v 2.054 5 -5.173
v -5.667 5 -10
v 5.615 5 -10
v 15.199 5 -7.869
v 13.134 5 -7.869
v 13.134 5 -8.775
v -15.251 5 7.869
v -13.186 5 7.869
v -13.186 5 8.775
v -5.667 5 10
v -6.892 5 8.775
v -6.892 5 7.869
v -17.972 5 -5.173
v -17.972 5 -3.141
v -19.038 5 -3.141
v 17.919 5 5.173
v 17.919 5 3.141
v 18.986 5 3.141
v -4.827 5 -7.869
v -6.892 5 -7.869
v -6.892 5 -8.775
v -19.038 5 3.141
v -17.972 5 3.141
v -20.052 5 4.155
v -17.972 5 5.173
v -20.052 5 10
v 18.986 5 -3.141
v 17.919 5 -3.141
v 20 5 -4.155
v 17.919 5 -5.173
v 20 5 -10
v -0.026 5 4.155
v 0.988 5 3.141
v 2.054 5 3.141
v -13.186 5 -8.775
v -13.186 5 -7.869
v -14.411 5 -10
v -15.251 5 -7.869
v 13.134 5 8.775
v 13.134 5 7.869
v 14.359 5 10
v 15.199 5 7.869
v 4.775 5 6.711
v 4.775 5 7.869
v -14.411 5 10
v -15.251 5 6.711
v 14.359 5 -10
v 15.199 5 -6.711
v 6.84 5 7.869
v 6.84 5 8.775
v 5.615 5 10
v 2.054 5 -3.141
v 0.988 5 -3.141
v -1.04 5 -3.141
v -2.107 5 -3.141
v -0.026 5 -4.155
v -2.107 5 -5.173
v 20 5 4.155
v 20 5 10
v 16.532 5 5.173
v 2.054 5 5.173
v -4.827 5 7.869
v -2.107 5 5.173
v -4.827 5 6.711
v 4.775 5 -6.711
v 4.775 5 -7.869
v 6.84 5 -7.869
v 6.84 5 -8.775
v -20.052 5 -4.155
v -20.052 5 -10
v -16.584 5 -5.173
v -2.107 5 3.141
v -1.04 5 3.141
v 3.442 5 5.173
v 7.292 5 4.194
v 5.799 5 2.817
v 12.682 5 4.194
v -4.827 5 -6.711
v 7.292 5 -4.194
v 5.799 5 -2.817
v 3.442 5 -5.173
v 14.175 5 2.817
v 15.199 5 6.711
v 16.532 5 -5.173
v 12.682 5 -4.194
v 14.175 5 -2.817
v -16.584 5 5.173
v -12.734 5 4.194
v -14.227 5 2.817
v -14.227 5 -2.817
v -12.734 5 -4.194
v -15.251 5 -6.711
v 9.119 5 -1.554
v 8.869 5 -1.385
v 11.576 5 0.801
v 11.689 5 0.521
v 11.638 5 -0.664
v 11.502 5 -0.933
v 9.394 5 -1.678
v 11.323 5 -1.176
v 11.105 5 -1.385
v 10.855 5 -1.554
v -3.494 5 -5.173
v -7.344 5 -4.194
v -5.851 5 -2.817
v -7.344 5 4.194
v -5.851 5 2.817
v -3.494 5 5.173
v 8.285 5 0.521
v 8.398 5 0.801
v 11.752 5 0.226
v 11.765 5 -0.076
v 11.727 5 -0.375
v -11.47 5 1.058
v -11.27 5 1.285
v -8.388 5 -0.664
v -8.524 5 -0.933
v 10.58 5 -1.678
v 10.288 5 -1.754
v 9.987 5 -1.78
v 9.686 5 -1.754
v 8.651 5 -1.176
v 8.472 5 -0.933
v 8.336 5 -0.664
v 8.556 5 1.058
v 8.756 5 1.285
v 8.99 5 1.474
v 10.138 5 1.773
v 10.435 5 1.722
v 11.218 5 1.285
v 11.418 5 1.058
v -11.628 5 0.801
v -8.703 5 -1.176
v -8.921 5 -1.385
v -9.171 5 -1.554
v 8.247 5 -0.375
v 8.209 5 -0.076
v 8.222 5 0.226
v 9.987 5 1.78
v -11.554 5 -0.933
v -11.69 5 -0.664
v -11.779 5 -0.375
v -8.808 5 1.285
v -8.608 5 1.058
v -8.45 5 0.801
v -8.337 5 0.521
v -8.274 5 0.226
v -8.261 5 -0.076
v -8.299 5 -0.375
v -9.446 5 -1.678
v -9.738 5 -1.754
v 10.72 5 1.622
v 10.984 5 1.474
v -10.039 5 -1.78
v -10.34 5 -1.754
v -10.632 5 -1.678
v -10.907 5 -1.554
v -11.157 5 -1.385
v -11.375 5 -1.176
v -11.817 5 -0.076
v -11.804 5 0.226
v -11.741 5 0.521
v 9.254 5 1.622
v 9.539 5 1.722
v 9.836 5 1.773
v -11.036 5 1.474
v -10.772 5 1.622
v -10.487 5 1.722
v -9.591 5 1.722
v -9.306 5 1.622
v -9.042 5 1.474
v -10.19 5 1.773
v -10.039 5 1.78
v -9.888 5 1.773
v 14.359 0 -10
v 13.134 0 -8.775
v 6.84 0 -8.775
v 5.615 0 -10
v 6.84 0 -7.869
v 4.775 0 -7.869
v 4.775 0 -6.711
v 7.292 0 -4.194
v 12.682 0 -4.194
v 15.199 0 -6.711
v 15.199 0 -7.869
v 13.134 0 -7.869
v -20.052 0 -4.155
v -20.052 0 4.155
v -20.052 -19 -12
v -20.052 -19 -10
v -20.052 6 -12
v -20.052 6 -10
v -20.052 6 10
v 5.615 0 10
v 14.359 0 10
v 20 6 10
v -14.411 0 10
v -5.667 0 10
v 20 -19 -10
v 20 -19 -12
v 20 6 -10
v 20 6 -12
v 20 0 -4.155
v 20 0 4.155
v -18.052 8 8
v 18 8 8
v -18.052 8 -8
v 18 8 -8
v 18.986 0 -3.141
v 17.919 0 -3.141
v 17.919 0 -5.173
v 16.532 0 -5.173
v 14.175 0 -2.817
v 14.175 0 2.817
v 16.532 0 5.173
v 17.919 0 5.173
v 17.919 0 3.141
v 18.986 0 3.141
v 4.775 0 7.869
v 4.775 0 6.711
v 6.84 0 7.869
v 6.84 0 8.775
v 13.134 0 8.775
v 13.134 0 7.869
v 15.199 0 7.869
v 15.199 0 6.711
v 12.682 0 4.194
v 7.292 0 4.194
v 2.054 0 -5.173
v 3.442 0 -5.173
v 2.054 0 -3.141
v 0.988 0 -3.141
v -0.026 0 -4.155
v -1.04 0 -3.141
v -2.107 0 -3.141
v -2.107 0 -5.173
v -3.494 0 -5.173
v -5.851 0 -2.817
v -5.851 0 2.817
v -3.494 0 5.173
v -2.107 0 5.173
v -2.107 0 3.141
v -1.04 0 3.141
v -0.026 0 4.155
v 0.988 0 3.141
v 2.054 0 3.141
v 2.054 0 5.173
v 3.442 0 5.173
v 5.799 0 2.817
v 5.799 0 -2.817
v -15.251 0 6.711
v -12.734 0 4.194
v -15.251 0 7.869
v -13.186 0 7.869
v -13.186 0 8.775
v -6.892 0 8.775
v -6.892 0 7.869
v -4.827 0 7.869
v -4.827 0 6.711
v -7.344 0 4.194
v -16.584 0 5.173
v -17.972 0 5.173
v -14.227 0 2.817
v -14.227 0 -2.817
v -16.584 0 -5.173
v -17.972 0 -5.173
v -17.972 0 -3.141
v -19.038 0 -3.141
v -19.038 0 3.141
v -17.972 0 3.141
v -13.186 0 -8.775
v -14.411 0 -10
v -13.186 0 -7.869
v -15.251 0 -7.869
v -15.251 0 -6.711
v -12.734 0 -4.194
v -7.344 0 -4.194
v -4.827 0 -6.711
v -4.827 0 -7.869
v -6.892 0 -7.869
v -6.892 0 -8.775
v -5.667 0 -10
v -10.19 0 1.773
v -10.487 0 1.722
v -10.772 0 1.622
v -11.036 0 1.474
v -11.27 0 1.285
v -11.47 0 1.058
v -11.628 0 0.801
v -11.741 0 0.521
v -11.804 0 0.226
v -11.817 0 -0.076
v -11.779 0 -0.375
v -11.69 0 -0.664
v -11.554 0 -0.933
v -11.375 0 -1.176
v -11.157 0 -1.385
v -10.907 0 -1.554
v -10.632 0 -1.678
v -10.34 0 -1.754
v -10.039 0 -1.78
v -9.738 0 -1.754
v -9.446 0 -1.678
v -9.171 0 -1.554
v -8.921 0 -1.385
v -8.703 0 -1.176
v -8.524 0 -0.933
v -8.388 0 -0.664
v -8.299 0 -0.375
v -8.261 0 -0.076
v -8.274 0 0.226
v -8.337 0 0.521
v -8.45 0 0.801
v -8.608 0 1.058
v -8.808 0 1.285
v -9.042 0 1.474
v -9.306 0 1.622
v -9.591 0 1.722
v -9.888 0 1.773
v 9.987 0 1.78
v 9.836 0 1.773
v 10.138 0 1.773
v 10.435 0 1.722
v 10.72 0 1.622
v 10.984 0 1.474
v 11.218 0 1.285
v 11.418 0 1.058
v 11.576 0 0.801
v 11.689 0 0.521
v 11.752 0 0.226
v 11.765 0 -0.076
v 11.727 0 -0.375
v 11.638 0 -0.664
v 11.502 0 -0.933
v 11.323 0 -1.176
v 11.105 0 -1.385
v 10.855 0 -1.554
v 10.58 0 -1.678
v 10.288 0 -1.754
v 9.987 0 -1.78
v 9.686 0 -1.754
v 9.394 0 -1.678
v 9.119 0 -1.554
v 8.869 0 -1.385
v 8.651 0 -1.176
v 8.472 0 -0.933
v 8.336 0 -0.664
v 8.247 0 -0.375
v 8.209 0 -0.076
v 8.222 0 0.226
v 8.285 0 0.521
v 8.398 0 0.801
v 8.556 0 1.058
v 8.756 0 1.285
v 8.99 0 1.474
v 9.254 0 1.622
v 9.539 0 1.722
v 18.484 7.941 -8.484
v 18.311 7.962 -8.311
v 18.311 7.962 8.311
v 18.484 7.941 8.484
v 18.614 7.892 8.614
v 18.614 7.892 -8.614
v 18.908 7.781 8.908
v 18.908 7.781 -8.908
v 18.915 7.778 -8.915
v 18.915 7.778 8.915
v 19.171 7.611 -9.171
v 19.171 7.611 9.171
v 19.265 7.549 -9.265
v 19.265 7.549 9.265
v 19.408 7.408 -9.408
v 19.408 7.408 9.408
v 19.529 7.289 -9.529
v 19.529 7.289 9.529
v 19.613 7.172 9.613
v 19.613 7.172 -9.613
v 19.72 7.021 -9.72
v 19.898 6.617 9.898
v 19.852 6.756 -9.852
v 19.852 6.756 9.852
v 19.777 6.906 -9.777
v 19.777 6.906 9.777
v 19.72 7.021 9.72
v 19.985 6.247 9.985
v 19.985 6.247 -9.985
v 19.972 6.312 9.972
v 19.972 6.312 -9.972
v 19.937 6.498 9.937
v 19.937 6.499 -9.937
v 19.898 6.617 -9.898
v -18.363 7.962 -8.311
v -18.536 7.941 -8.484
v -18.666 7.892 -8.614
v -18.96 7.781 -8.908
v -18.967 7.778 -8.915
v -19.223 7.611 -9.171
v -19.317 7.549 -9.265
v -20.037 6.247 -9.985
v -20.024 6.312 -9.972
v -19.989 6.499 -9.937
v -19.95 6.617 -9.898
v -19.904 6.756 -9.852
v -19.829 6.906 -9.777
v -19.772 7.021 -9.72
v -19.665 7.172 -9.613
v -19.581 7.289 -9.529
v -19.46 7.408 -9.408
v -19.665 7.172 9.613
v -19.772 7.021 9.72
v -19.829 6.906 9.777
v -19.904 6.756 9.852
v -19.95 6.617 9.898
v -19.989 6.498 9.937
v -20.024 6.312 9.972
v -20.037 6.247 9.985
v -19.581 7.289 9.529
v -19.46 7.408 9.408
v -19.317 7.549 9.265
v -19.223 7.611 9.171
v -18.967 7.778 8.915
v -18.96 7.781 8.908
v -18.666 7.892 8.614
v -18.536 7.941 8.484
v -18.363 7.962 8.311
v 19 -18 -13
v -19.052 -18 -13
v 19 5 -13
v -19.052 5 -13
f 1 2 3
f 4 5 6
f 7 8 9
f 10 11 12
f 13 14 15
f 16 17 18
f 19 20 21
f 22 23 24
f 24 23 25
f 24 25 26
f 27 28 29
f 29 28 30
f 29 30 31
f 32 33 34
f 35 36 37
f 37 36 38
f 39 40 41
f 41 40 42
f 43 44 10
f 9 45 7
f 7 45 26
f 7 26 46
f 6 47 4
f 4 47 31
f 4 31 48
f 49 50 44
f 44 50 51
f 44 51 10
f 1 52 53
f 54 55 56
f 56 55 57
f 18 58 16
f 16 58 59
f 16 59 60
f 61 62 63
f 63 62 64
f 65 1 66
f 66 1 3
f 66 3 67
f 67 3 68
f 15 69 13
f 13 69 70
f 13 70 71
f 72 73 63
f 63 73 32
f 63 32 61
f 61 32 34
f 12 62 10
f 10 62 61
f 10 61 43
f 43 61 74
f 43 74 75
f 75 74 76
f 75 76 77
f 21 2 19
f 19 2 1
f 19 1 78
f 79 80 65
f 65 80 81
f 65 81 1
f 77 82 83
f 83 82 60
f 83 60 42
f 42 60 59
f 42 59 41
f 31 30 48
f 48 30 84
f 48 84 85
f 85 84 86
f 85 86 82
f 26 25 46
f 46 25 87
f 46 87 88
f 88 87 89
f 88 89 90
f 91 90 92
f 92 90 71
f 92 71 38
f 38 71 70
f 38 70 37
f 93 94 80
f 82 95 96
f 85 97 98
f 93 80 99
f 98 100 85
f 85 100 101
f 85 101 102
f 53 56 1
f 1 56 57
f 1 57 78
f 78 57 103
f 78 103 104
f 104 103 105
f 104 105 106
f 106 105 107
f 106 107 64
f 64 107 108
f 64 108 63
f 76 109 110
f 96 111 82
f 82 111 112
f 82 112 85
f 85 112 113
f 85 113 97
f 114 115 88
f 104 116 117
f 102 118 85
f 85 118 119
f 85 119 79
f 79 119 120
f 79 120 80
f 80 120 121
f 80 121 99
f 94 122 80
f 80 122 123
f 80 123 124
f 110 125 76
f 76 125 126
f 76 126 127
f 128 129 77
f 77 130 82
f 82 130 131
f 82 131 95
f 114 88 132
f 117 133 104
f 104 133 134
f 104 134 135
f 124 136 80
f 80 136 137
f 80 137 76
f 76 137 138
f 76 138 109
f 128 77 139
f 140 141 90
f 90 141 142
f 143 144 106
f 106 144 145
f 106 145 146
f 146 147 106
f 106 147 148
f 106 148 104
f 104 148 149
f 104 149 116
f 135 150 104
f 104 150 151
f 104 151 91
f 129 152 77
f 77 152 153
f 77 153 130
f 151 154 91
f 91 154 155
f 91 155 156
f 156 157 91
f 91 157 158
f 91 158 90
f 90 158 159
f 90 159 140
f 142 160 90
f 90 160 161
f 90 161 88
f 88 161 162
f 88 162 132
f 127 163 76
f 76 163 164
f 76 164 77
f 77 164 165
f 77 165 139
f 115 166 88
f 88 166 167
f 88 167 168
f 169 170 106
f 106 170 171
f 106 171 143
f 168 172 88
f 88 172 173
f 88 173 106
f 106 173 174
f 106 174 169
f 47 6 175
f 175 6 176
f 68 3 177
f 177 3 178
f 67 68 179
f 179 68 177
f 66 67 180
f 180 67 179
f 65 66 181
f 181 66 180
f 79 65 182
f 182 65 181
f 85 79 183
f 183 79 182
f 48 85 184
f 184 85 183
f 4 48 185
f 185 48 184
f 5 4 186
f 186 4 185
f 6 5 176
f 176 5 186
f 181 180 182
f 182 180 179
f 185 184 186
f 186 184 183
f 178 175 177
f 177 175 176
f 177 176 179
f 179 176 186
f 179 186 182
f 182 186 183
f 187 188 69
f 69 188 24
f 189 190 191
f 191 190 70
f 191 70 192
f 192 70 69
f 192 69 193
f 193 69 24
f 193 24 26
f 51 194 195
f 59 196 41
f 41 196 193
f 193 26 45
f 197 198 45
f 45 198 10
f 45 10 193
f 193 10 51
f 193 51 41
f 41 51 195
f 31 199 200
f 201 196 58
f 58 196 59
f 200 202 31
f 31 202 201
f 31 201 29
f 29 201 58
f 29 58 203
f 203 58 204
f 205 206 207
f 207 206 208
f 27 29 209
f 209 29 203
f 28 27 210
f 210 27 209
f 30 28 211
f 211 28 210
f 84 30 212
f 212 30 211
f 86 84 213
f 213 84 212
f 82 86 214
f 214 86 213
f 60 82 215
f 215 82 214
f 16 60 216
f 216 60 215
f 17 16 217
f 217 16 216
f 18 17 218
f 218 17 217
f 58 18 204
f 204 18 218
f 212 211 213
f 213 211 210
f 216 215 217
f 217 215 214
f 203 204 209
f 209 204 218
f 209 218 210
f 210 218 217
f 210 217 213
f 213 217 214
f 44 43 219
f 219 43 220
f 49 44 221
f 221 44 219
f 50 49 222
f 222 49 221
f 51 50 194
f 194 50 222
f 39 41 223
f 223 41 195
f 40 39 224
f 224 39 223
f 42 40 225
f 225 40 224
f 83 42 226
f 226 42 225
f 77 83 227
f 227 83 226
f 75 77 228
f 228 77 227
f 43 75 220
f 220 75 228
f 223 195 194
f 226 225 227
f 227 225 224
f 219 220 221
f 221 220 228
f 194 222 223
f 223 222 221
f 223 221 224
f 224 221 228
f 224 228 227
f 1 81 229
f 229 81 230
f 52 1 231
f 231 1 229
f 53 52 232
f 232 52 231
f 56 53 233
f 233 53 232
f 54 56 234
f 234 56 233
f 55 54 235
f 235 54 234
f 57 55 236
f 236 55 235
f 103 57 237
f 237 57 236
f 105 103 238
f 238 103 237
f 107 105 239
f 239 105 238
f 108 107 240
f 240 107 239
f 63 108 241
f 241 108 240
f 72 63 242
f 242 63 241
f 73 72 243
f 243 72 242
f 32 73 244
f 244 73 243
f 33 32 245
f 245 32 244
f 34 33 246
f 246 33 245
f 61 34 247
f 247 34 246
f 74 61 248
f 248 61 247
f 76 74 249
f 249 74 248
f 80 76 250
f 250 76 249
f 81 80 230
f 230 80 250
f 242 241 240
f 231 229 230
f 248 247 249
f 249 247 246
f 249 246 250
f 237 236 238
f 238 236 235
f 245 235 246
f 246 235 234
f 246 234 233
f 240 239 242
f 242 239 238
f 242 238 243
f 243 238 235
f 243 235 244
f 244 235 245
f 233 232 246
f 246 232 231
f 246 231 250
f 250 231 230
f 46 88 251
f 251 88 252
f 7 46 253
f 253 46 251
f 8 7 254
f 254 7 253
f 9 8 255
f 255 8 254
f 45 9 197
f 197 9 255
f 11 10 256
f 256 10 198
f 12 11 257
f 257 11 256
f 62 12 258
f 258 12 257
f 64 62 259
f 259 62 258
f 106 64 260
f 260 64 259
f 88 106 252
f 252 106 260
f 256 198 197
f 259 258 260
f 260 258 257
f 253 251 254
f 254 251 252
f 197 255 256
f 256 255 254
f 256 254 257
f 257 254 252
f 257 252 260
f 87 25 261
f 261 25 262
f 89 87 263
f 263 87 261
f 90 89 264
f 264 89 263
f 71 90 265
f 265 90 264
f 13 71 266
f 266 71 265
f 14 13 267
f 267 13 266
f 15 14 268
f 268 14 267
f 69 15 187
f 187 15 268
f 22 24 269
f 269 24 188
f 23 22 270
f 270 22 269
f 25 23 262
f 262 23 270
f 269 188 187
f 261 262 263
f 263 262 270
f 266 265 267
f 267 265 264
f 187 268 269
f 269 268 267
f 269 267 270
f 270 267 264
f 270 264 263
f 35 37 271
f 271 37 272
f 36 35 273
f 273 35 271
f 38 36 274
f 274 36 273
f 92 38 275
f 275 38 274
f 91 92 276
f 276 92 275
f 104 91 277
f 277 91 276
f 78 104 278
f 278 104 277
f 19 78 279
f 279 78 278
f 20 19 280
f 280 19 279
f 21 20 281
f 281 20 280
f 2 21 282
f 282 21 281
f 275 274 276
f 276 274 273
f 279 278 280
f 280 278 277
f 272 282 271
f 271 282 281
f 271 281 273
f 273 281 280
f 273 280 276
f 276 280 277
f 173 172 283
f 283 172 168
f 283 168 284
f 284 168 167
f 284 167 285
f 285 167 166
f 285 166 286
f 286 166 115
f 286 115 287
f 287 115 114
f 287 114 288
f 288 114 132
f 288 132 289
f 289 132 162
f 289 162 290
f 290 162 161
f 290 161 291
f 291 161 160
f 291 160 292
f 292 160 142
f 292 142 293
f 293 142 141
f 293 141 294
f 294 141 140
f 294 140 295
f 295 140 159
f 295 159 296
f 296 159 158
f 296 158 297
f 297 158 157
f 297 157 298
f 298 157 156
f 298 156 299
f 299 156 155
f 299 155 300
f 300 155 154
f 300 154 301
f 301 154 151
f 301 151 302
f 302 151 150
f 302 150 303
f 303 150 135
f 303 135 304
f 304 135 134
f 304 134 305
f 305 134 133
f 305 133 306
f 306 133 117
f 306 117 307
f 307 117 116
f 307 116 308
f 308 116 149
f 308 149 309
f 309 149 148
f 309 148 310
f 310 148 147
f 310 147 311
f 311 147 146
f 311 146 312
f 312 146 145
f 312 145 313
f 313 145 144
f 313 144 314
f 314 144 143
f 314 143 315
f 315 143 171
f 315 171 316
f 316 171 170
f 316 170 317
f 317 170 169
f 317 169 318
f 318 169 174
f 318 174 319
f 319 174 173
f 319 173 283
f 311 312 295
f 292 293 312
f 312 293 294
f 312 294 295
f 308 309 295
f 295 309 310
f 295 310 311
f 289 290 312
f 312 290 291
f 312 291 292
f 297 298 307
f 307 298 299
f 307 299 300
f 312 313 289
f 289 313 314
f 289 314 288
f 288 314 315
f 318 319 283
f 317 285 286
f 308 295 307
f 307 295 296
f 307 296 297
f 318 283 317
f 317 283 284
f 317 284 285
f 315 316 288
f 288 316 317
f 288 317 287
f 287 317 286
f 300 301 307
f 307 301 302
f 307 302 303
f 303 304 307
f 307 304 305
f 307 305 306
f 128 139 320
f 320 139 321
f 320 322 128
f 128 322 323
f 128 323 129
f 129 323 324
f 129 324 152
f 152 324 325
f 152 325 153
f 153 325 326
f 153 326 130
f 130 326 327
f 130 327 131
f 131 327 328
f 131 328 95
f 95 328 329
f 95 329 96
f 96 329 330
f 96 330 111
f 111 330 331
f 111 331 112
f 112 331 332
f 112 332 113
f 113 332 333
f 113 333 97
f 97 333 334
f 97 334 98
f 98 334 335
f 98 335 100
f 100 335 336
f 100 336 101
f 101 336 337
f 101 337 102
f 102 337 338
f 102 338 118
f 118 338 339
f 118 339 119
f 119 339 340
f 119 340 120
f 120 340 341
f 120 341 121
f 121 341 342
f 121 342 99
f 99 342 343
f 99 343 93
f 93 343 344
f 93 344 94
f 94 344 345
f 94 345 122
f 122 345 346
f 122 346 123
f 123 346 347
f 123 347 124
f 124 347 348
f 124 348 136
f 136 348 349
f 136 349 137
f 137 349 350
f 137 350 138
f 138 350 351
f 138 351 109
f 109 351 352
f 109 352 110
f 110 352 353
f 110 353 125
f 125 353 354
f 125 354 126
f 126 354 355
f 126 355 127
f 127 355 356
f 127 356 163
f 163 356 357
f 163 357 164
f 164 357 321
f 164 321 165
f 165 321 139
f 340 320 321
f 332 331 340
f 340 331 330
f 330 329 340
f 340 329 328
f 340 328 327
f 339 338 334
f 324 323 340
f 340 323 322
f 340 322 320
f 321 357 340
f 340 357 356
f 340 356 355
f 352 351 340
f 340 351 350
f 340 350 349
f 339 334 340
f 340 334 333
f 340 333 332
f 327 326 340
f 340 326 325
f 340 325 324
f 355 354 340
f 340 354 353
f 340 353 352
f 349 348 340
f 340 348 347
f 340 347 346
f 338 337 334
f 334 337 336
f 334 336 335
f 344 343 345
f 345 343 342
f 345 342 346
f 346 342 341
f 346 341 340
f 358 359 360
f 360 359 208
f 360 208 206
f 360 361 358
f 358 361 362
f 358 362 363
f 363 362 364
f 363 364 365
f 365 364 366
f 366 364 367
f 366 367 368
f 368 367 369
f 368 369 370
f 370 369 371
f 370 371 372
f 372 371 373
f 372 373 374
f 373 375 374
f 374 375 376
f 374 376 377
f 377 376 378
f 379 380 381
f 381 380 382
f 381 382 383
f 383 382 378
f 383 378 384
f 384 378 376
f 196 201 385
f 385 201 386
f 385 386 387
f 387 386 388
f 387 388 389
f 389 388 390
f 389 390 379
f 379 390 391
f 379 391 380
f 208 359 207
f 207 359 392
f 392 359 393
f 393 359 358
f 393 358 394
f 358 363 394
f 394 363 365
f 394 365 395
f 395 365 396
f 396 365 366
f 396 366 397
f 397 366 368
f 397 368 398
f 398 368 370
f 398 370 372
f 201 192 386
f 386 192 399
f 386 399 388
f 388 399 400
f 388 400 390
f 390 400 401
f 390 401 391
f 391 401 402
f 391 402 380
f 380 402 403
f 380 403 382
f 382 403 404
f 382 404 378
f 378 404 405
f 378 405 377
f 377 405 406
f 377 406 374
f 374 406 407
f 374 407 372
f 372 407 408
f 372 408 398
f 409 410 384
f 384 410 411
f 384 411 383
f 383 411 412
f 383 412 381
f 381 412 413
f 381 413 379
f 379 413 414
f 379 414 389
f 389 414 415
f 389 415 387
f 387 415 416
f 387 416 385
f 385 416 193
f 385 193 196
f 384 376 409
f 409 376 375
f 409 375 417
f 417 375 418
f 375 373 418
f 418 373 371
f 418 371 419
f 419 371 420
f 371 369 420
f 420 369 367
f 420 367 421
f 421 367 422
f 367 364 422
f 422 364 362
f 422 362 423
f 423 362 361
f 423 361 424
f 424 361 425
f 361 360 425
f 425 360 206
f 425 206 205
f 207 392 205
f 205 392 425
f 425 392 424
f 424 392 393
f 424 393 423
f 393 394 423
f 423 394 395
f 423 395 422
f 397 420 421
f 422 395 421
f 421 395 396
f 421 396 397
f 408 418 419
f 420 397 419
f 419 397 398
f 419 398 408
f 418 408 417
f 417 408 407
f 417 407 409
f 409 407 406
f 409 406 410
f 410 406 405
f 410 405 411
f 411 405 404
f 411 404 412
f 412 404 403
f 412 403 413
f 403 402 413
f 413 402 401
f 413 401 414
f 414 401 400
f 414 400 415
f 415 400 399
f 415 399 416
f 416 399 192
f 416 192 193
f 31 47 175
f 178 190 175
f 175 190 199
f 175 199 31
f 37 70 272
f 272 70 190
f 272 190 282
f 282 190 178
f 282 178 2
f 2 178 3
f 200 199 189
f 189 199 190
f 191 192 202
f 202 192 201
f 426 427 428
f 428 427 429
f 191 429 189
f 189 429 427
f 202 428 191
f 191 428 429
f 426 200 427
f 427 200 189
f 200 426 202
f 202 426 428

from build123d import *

# Parameters (mm, degrees)
CROQUIS2_R                = 1.779687177
SALIENTE_EXTRUIR1_DEPTH   = 5
SALIENTE_EXTRUIR1_2_DEPTH = 5
SALIENTE_EXTRUIR1_3_DEPTH = 5
SALIENTE_EXTRUIR1_4_DEPTH = 5
SALIENTE_EXTRUIR1_5_DEPTH = 5
SALIENTE_EXTRUIR1_6_DEPTH = 5
SALIENTE_EXTRUIR1_7_DEPTH = 5
SALIENTE_EXTRUIR1_8_DEPTH = 5
SALIENTE_EXTRUIR1_9_DEPTH = 5
CROQUIS3_W                = 40.052022685
CROQUIS3_H                = 20
SALIENTE_EXTRUIR2_DEPTH   = 3
REDONDEO1_R               = 2
CROQUIS4_W                = 40.052022685
CROQUIS4_H                = 25
SALIENTE_EXTRUIR3_DEPTH   = 3
CHAFL_N1_SIZE             = 1


with BuildPart() as part:
    # Croquis2 → Saliente-Extruir1 (new body)
    with BuildSketch(Plane(origin=(0, 0, 0), x_dir=(1, 0, 0), z_dir=(0, 1, 0))):
        with Locations(Location((-10.039017014, 0, 0), (0, 0, 90))):
            Circle(CROQUIS2_R)
    extrude(amount=SALIENTE_EXTRUIR1_DEPTH)



with BuildPart() as body_2:
    # Croquis2 → Saliente-Extruir1 2 (new body)
    with BuildSketch(Plane(origin=(0, 0, 0), x_dir=(1, 0, 0), z_dir=(0, 1, 0))):
        with Locations(Location((9.986994329, 0, 0), (0, 0, 270))):
            Circle(CROQUIS2_R)
    extrude(amount=SALIENTE_EXTRUIR1_2_DEPTH)


with BuildPart() as body_3:
    # Croquis2 → Saliente-Extruir1 3 (new body)
    with BuildSketch(Plane(origin=(0, 0, 0), x_dir=(1, 0, 0), z_dir=(0, 1, 0))):
        Polygon((5.614984779, 10), (14.359003879, 10), (13.134466077, 8.775462198), (13.134466077, 7.868577354), (15.198808852, 7.868577354), (15.198808852, 6.711119422), (12.681851378, 4.194161948), (7.292137279, 4.194161948), (4.775179805, 6.711119422), (4.775179805, 7.868577354), (6.839522581, 7.868577354), (6.839522581, 8.775462198), align=None)
    extrude(amount=SALIENTE_EXTRUIR1_3_DEPTH)


with BuildPart() as body_4:
    # Croquis2 → Saliente-Extruir1 4 (new body)
    with BuildSketch(Plane(origin=(0, 0, 0), x_dir=(1, 0, 0), z_dir=(0, 1, 0))):
        Polygon((20, 4.155027818), (20, -4.155027818), (18.985761672, -3.14078949), (17.919495795, -3.14078949), (17.919495795, -5.172992947), (16.531532714, -5.172992947), (14.175115642, -2.816575874), (14.175115642, 2.816575874), (16.531532714, 5.172992947), (17.919495795, 5.172992947), (17.919495795, 3.14078949), (18.985761672, 3.14078949), align=None)
    extrude(amount=SALIENTE_EXTRUIR1_4_DEPTH)


with BuildPart() as body_5:
    # Croquis2 → Saliente-Extruir1 5 (new body)
    with BuildSketch(Plane(origin=(0, 0, 0), x_dir=(1, 0, 0), z_dir=(0, 1, 0))):
        Polygon((-0.026011343, 4.155027818), (-1.040249671, 3.14078949), (-2.106515548, 3.14078949), (-2.106515548, 5.172992947), (-3.494478629, 5.172992947), (-5.850895701, 2.816575874), (-5.850895701, -2.816575874), (-3.494478629, -5.172992947), (-2.106515548, -5.172992947), (-2.106515548, -3.14078949), (-1.040249671, -3.14078949), (-0.026011343, -4.155027818), (0.988226986, -3.14078949), (2.054492862, -3.14078949), (2.054492862, -5.172992947), (3.442455943, -5.172992947), (5.798873016, -2.816575874), (5.798873016, 2.816575874), (3.442455943, 5.172992947), (2.054492862, 5.172992947), (2.054492862, 3.14078949), (0.988226986, 3.14078949), align=None)
    extrude(amount=SALIENTE_EXTRUIR1_5_DEPTH)


with BuildPart() as body_6:
    # Croquis2 → Saliente-Extruir1 6 (new body)
    with BuildSketch(Plane(origin=(0, 0, 0), x_dir=(1, 0, 0), z_dir=(0, 1, 0))):
        Polygon((4.775179805, -6.711119422), (7.292137279, -4.194161948), (12.681851378, -4.194161948), (15.198808852, -6.711119422), (15.198808852, -7.868577354), (13.134466077, -7.868577354), (13.134466077, -8.775462198), (14.359003879, -10), (5.614984779, -10), (6.839522581, -8.775462198), (6.839522581, -7.868577354), (4.775179805, -7.868577354), align=None)
    extrude(amount=SALIENTE_EXTRUIR1_6_DEPTH)


with BuildPart() as body_7:
    # Croquis2 → Saliente-Extruir1 7 (new body)
    with BuildSketch(Plane(origin=(0, 0, 0), x_dir=(1, 0, 0), z_dir=(0, 1, 0))):
        Polygon((-12.733874064, -4.194161948), (-7.344159964, -4.194161948), (-4.82720249, -6.711119422), (-4.82720249, -7.868577354), (-6.891545266, -7.868577354), (-6.891545266, -8.775462198), (-5.667007464, -10), (-14.411026564, -10), (-13.186488762, -8.775462198), (-13.186488762, -7.868577354), (-15.250831538, -7.868577354), (-15.250831538, -6.711119422), align=None)
    extrude(amount=SALIENTE_EXTRUIR1_7_DEPTH)


with BuildPart() as body_8:
    # Croquis2 → Saliente-Extruir1 8 (new body)
    with BuildSketch(Plane(origin=(0, 0, 0), x_dir=(1, 0, 0), z_dir=(0, 1, 0))):
        Polygon((-16.583555399, -5.172992947), (-14.227138327, -2.816575874), (-14.227138327, 2.816575874), (-16.583555399, 5.172992947), (-17.97151848, 5.172992947), (-17.97151848, 3.14078949), (-19.037784357, 3.14078949), (-20.052022685, 4.155027818), (-20.052022685, -4.155027818), (-19.037784357, -3.14078949), (-17.97151848, -3.14078949), (-17.97151848, -5.172992947), align=None)
    extrude(amount=SALIENTE_EXTRUIR1_8_DEPTH)


with BuildPart() as body_9:
    # Croquis2 → Saliente-Extruir1 9 (new body)
    with BuildSketch(Plane(origin=(0, 0, 0), x_dir=(1, 0, 0), z_dir=(0, 1, 0))):
        Polygon((-5.667007464, 10), (-6.891545266, 8.775462198), (-6.891545266, 7.868577354), (-4.82720249, 7.868577354), (-4.82720249, 6.711119422), (-7.344159964, 4.194161948), (-12.733874064, 4.194161948), (-15.250831538, 6.711119422), (-15.250831538, 7.868577354), (-13.186488762, 7.868577354), (-13.186488762, 8.775462198), (-14.411026564, 10), align=None)
    extrude(amount=SALIENTE_EXTRUIR1_9_DEPTH)


with BuildPart() as part_1:
    add(part.part)

    add(body_2.part)  # Saliente-Extruir2 merges body 2

    add(body_3.part)  # Saliente-Extruir2 merges body 3

    add(body_4.part)  # Saliente-Extruir2 merges body 4

    add(body_5.part)  # Saliente-Extruir2 merges body 5

    add(body_6.part)  # Saliente-Extruir2 merges body 6

    add(body_7.part)  # Saliente-Extruir2 merges body 7

    add(body_8.part)  # Saliente-Extruir2 merges body 8

    add(body_9.part)  # Saliente-Extruir2 merges body 9
    # Croquis3 → Saliente-Extruir2 (add)
    with BuildSketch(Plane(origin=(0, 5, 0), x_dir=(1, 0, 0), z_dir=(0, 1, 0))):
        with Locations((-0.026011343, 0)):
            Rectangle(CROQUIS3_W, CROQUIS3_H)
    extrude(amount=SALIENTE_EXTRUIR2_DEPTH)

    # Redondeo1
    redondeo1_edges = [part_1.edges().sort_by_distance(p)[0] for p in [
        (-20.052022685, 8, 0),
        (-0.026011343, 8, 10),
        (20, 8, 0),
        (-0.026011343, 8, -10),
    ]]
    fillet(redondeo1_edges, radius=REDONDEO1_R)

    # Croquis4 → Saliente-Extruir3 (add)
    with BuildSketch(Plane(origin=(0, 0, -10), x_dir=(-1, 0, 0), z_dir=(0, 0, -1))):
        with Locations((0.026011343, -6.5)):
            Rectangle(CROQUIS4_W, CROQUIS4_H)
    extrude(amount=SALIENTE_EXTRUIR3_DEPTH)

    # Chaflán1
    chafl_n1_edges = [part_1.edges().sort_by_distance(p)[0] for p in [
        (20, -6.5, -13),
        (-0.026011343, -19, -13),
        (-20.052022685, -6.5, -13),
        (-0.026011343, 6, -13),
    ]]
    chamfer(chafl_n1_edges, length=CHAFL_N1_SIZE)


solid = part_1.part
